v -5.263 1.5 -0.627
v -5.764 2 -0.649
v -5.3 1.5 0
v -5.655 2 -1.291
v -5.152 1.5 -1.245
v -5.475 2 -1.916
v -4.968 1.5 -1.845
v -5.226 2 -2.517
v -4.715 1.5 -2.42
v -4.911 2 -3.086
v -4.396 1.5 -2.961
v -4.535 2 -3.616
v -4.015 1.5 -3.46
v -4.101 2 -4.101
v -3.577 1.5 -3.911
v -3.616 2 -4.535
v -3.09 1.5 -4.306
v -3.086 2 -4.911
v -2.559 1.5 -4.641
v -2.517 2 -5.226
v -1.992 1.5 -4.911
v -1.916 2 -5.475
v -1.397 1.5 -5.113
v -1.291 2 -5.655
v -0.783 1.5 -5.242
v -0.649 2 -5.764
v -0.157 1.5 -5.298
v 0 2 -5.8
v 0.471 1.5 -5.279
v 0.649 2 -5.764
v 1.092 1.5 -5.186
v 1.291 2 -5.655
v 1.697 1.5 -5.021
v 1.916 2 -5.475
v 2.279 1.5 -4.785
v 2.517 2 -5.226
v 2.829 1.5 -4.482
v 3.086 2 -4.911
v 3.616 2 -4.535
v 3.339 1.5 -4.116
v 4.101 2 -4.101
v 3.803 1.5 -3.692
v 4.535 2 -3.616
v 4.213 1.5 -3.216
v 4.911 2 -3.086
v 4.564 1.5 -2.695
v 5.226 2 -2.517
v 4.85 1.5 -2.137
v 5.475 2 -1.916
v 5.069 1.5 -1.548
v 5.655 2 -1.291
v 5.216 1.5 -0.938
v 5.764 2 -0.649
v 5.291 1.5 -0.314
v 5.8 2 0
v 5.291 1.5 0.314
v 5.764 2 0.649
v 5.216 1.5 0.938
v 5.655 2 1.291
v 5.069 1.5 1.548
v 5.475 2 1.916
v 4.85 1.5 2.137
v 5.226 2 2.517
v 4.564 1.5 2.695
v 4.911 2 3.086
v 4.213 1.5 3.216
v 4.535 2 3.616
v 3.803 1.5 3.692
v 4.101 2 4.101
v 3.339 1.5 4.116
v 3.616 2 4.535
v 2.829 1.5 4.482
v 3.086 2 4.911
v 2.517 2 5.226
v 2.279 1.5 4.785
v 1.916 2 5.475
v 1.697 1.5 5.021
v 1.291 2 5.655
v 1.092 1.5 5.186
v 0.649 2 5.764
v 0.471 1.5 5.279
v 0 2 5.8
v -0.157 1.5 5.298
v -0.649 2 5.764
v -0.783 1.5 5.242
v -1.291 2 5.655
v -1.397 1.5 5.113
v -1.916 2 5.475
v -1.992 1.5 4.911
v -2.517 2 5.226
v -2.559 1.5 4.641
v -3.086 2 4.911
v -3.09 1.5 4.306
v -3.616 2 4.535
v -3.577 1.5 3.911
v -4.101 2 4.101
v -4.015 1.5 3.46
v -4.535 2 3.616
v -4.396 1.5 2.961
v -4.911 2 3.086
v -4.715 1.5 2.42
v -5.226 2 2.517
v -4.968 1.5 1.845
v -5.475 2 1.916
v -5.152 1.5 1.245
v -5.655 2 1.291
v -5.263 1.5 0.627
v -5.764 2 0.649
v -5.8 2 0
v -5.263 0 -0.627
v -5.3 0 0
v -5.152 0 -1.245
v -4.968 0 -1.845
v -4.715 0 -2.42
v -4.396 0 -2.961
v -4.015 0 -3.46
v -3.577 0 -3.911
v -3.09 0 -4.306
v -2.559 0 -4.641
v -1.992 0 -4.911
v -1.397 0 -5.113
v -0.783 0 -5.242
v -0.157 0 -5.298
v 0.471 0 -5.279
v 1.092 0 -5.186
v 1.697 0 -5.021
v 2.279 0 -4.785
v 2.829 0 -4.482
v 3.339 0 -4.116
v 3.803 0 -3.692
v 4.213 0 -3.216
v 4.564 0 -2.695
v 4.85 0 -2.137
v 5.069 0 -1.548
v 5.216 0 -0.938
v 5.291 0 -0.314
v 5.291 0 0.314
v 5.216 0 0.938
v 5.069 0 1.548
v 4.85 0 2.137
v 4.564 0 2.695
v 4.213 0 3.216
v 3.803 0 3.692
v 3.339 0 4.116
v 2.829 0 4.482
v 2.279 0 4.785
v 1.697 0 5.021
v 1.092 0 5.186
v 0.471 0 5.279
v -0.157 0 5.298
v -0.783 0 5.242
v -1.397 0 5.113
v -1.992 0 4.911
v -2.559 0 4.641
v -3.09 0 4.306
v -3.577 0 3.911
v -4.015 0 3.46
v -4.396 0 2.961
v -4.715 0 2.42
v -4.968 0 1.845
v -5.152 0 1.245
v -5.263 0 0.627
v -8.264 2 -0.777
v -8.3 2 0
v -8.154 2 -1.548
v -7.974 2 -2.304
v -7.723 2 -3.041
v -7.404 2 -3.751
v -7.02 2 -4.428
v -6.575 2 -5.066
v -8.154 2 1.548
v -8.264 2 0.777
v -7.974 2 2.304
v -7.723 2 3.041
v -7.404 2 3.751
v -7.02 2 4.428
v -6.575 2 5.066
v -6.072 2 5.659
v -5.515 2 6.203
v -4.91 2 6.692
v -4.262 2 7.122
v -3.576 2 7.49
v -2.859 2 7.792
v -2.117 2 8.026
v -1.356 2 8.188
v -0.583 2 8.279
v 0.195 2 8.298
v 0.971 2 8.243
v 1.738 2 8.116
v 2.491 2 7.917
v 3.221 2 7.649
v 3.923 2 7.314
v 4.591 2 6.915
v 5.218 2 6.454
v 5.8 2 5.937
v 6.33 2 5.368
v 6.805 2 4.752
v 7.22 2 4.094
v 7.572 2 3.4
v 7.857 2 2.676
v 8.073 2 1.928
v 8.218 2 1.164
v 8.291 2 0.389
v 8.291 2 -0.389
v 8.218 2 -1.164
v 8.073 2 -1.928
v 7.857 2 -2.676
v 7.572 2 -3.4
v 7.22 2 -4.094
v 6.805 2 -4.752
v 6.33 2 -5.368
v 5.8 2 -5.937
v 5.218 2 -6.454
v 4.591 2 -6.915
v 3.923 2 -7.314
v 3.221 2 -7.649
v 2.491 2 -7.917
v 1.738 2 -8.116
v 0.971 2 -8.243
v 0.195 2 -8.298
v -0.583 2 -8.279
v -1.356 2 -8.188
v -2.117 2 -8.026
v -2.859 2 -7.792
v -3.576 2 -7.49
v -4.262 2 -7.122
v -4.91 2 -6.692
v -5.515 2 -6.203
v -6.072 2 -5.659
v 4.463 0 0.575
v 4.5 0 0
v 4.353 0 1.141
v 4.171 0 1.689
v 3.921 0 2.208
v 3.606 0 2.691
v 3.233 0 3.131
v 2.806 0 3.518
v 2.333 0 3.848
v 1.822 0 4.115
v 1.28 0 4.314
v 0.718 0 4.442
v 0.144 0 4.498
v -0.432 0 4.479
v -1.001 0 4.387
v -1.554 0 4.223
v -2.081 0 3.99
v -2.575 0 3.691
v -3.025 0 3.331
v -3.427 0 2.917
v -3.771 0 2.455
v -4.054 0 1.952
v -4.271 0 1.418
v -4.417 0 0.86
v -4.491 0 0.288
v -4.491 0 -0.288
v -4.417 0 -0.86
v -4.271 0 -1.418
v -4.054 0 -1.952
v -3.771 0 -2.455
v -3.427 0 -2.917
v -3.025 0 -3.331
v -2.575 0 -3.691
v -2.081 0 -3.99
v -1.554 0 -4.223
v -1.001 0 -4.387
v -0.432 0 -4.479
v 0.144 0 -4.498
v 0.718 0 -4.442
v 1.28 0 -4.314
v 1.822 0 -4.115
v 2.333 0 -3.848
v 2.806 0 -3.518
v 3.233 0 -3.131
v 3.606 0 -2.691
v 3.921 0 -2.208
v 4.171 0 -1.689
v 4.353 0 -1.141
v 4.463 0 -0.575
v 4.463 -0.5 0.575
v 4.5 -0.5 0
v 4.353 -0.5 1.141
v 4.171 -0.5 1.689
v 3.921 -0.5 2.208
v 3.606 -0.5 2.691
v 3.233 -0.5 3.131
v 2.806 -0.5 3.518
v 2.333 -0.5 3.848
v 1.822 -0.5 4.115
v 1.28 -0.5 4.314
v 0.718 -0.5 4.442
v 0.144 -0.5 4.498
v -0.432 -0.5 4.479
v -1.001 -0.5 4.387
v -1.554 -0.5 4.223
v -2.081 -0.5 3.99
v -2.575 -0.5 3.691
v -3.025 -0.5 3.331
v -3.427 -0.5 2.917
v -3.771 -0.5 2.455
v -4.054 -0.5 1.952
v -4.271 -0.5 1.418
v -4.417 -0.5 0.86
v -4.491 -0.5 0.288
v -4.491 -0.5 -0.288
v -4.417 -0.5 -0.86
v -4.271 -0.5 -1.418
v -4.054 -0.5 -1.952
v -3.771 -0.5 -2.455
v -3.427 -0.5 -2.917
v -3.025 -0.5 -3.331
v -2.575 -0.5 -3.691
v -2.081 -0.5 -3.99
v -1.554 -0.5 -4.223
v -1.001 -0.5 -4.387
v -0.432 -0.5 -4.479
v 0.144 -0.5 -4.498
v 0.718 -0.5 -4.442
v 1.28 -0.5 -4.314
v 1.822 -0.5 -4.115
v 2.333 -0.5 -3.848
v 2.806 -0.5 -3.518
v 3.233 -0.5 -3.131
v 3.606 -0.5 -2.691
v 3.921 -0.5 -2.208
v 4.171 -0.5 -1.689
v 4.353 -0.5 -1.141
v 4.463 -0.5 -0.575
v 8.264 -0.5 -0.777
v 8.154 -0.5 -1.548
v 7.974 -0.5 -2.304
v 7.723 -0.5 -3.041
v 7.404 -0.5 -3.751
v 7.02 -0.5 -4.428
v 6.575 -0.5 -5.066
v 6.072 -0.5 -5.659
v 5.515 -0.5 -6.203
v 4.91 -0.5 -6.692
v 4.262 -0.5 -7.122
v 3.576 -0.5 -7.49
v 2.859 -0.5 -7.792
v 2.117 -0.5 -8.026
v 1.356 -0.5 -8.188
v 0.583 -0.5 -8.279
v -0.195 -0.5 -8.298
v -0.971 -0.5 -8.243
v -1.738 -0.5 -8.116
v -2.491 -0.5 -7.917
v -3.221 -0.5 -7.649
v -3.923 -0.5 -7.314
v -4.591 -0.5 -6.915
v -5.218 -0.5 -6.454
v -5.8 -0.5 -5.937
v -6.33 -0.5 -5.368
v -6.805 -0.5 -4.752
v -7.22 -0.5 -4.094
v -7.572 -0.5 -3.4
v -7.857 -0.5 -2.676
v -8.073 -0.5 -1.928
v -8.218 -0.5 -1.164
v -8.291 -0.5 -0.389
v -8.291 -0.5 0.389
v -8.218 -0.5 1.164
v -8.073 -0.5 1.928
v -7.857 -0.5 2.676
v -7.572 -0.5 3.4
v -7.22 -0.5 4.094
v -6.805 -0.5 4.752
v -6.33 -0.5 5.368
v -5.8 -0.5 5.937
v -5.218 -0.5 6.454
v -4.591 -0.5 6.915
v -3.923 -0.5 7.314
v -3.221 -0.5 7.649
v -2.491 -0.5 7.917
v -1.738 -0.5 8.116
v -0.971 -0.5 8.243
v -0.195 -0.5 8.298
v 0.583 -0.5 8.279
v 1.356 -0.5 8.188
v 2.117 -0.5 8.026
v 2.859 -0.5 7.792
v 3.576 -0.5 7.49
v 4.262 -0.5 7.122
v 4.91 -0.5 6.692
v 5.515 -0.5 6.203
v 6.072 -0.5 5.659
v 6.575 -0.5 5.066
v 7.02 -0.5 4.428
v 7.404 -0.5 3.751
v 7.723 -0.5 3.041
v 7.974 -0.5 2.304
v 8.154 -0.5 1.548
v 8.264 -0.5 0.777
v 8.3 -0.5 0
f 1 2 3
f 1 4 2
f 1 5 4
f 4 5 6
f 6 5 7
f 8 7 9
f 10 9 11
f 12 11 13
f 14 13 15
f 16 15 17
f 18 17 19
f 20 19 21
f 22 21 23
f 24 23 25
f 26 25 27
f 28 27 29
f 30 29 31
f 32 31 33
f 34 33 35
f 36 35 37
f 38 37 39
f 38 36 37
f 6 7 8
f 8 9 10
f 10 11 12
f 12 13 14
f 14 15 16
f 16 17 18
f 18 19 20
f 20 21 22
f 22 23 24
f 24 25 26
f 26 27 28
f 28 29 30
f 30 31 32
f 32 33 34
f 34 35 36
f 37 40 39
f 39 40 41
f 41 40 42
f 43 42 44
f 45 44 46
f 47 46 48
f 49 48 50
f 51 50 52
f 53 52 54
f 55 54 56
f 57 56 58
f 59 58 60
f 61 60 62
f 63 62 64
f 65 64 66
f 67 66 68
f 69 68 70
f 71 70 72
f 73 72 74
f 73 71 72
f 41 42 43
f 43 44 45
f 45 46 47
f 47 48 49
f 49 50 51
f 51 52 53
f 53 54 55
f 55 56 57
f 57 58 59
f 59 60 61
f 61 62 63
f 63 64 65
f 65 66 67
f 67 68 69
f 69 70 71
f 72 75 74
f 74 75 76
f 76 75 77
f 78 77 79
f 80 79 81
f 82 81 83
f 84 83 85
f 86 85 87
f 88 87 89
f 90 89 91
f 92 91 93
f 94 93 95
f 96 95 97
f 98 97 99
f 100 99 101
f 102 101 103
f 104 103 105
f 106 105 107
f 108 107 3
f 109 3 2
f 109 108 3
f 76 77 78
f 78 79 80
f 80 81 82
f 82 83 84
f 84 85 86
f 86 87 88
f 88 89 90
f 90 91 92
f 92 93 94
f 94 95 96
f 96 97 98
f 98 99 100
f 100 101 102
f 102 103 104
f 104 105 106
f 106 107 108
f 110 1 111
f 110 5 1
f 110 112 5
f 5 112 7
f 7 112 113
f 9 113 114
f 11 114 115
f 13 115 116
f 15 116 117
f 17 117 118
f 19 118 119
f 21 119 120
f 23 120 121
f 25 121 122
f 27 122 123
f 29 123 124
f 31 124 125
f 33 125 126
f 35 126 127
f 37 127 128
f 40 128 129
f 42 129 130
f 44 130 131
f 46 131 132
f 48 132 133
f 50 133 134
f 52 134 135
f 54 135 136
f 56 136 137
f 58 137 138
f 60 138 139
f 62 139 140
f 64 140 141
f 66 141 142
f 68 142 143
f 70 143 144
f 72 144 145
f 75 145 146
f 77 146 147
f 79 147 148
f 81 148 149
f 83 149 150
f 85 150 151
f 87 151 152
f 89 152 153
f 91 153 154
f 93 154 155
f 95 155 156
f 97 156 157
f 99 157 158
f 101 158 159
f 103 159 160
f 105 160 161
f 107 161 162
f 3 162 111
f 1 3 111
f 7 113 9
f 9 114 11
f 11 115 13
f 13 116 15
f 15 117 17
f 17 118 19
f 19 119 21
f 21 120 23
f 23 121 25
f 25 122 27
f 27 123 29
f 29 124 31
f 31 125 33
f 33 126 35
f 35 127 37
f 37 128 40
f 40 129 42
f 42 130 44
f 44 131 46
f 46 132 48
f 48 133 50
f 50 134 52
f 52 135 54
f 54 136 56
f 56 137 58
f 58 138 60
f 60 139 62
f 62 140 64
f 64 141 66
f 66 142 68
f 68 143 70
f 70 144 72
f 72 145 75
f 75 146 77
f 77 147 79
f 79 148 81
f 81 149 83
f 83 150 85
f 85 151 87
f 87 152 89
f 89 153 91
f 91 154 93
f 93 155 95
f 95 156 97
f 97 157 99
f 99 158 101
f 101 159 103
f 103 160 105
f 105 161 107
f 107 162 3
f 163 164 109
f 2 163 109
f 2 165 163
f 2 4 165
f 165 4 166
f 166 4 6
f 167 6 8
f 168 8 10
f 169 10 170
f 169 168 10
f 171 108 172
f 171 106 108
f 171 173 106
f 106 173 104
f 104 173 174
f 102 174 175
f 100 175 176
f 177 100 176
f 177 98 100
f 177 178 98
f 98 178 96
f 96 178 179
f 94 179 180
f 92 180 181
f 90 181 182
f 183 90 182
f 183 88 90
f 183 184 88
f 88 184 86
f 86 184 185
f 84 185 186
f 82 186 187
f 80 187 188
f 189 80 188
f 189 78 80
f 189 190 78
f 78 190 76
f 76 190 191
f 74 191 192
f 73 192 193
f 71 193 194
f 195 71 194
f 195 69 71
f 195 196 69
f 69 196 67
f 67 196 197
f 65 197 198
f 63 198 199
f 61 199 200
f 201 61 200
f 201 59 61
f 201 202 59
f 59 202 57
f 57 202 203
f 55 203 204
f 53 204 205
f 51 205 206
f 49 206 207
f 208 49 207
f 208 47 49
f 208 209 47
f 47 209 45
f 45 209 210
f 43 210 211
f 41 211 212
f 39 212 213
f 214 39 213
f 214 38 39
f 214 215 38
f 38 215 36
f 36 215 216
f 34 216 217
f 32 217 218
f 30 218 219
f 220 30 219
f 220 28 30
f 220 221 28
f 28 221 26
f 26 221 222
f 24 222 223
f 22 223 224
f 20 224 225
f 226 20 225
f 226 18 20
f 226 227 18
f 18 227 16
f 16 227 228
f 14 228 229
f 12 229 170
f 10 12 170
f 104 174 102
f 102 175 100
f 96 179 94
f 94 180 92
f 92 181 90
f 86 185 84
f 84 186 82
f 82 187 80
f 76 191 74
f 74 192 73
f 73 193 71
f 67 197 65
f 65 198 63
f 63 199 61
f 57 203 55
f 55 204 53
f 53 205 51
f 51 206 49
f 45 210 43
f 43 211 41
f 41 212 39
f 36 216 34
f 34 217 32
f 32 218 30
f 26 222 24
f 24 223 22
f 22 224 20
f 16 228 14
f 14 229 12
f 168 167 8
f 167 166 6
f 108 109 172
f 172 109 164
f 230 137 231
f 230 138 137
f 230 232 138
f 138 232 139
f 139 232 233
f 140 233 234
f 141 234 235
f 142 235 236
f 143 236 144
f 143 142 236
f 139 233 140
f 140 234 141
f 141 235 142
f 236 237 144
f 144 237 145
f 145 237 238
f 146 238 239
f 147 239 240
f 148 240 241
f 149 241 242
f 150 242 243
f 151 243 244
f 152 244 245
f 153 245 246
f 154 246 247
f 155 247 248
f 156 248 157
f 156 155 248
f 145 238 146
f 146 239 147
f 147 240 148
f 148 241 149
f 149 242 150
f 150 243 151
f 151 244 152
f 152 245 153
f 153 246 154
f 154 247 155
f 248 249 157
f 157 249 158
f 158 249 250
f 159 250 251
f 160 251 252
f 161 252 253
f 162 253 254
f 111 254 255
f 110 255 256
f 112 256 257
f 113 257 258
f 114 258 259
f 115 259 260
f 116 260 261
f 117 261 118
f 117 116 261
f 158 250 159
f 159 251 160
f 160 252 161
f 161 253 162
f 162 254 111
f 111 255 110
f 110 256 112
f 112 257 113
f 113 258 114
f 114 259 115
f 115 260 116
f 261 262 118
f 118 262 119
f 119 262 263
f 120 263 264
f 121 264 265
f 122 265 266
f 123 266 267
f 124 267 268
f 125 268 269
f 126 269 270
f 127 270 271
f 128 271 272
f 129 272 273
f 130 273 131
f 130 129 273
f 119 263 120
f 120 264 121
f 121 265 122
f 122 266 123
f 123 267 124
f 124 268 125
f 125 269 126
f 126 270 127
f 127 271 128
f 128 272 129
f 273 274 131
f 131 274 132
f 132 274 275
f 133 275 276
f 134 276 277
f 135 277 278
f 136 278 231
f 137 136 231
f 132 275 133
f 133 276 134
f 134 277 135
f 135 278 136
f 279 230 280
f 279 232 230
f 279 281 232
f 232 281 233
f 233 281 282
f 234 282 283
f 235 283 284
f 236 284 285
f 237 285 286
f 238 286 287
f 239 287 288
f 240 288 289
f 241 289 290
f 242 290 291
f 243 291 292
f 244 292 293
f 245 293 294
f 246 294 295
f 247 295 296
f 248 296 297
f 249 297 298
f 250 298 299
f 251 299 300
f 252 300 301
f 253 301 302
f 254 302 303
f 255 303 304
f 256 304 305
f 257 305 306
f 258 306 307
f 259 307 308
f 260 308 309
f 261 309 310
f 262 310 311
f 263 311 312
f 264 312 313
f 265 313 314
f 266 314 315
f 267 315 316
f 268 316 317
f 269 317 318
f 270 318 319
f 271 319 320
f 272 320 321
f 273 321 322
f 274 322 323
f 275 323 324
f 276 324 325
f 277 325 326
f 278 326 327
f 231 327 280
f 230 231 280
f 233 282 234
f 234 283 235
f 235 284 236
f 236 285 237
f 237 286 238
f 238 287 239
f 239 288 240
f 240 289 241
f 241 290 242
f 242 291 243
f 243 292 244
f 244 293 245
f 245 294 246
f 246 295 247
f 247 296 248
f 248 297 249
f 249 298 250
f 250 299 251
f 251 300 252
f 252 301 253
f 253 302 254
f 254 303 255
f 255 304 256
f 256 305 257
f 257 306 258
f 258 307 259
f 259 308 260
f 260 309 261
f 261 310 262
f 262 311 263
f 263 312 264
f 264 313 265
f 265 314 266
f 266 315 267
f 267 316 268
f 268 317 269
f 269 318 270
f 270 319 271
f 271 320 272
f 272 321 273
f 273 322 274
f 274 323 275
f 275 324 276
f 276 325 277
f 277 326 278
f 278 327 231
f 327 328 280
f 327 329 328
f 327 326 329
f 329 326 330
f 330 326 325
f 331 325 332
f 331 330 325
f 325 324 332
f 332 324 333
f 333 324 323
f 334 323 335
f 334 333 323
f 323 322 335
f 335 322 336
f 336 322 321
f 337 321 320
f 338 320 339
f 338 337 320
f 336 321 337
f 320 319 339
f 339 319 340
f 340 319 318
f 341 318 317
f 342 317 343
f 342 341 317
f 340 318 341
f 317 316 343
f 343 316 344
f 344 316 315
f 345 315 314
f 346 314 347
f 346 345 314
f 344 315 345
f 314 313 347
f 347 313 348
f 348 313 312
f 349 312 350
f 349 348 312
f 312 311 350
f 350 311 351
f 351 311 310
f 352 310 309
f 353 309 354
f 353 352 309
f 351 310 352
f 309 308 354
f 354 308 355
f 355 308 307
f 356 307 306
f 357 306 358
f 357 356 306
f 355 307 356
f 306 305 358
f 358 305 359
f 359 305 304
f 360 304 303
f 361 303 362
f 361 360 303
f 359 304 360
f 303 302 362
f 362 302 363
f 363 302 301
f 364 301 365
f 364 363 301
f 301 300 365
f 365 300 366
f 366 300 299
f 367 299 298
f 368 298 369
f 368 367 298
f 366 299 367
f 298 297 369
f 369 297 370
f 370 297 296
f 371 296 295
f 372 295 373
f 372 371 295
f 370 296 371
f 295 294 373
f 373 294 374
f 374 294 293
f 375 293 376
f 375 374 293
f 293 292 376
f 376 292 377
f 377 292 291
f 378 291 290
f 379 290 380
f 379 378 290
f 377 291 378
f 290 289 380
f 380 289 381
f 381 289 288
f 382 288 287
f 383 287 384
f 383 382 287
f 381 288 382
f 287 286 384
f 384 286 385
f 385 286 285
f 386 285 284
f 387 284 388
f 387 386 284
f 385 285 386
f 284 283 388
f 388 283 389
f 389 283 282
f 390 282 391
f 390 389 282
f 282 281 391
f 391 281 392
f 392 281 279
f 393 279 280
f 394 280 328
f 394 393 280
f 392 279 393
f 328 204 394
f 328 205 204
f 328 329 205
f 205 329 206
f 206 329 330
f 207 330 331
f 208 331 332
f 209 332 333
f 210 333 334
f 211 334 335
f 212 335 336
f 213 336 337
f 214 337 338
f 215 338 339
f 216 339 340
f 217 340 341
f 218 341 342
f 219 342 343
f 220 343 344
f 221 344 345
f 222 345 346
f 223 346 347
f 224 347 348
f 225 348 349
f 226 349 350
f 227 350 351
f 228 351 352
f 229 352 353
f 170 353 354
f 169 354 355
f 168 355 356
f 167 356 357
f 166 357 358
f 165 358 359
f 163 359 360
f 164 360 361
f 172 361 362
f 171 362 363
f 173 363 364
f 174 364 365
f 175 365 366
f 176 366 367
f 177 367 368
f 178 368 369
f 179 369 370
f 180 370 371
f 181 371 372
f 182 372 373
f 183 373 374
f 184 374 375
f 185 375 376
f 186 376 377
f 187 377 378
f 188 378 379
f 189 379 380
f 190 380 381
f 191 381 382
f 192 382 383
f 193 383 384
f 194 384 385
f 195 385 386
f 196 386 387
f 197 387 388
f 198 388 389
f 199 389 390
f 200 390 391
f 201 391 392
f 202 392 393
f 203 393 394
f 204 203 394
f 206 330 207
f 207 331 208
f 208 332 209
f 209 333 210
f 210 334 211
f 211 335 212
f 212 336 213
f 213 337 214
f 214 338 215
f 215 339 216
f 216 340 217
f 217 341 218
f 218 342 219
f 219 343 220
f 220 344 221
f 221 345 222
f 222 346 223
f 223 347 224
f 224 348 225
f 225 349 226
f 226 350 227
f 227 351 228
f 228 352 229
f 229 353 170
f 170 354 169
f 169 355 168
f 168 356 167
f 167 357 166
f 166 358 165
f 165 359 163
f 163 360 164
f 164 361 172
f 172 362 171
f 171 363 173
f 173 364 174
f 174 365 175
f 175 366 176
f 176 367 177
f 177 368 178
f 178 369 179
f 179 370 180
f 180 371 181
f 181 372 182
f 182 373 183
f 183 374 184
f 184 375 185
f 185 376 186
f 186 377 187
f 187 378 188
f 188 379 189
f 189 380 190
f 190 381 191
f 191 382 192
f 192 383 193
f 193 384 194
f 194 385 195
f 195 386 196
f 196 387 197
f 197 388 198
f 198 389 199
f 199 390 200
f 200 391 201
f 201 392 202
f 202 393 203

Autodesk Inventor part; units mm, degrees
ref_plane "YZ Plane" through (0, 0, 0) normal (1, 0, 0) x (0, 1, 0)
ref_plane "XZ Plane" through (0, 0, 0) normal (0, 1, 0) x (-1, 0, 0)
ref_plane "XY Plane" through (0, 0, 0) normal (0, 0, 1) x (1, 0, 0)
sketch "Sketch1" plane through (0, 0, 0) normal (0, 1, 0) x (-1, 0, 0)
  circle A0 centre (0, 0) radius 5.3
  circle A1 centre (0, 0) radius 8.3
  dimension "d0" = 10.6
  dimension "d1" = 3
extrude "Extrusion1" add sketch "Sketch1" along normal blind 2
sketch "Sketch2" plane through (0, 0, 0) normal (0, -1, 0) x (1, 0, 0)
  circle A0 centre (0, 0) radius 4.5
  circle A1 centre (0, 0) radius 8.3 projected
  dimension "d4" = 9
extrude "Extrusion2" add sketch "Sketch2" along normal blind 0.5
chamfer "Chamfer1" distance 0.5 angle 45 1 edges at (5.3, 2, 0)
properties part number "623_flange"
